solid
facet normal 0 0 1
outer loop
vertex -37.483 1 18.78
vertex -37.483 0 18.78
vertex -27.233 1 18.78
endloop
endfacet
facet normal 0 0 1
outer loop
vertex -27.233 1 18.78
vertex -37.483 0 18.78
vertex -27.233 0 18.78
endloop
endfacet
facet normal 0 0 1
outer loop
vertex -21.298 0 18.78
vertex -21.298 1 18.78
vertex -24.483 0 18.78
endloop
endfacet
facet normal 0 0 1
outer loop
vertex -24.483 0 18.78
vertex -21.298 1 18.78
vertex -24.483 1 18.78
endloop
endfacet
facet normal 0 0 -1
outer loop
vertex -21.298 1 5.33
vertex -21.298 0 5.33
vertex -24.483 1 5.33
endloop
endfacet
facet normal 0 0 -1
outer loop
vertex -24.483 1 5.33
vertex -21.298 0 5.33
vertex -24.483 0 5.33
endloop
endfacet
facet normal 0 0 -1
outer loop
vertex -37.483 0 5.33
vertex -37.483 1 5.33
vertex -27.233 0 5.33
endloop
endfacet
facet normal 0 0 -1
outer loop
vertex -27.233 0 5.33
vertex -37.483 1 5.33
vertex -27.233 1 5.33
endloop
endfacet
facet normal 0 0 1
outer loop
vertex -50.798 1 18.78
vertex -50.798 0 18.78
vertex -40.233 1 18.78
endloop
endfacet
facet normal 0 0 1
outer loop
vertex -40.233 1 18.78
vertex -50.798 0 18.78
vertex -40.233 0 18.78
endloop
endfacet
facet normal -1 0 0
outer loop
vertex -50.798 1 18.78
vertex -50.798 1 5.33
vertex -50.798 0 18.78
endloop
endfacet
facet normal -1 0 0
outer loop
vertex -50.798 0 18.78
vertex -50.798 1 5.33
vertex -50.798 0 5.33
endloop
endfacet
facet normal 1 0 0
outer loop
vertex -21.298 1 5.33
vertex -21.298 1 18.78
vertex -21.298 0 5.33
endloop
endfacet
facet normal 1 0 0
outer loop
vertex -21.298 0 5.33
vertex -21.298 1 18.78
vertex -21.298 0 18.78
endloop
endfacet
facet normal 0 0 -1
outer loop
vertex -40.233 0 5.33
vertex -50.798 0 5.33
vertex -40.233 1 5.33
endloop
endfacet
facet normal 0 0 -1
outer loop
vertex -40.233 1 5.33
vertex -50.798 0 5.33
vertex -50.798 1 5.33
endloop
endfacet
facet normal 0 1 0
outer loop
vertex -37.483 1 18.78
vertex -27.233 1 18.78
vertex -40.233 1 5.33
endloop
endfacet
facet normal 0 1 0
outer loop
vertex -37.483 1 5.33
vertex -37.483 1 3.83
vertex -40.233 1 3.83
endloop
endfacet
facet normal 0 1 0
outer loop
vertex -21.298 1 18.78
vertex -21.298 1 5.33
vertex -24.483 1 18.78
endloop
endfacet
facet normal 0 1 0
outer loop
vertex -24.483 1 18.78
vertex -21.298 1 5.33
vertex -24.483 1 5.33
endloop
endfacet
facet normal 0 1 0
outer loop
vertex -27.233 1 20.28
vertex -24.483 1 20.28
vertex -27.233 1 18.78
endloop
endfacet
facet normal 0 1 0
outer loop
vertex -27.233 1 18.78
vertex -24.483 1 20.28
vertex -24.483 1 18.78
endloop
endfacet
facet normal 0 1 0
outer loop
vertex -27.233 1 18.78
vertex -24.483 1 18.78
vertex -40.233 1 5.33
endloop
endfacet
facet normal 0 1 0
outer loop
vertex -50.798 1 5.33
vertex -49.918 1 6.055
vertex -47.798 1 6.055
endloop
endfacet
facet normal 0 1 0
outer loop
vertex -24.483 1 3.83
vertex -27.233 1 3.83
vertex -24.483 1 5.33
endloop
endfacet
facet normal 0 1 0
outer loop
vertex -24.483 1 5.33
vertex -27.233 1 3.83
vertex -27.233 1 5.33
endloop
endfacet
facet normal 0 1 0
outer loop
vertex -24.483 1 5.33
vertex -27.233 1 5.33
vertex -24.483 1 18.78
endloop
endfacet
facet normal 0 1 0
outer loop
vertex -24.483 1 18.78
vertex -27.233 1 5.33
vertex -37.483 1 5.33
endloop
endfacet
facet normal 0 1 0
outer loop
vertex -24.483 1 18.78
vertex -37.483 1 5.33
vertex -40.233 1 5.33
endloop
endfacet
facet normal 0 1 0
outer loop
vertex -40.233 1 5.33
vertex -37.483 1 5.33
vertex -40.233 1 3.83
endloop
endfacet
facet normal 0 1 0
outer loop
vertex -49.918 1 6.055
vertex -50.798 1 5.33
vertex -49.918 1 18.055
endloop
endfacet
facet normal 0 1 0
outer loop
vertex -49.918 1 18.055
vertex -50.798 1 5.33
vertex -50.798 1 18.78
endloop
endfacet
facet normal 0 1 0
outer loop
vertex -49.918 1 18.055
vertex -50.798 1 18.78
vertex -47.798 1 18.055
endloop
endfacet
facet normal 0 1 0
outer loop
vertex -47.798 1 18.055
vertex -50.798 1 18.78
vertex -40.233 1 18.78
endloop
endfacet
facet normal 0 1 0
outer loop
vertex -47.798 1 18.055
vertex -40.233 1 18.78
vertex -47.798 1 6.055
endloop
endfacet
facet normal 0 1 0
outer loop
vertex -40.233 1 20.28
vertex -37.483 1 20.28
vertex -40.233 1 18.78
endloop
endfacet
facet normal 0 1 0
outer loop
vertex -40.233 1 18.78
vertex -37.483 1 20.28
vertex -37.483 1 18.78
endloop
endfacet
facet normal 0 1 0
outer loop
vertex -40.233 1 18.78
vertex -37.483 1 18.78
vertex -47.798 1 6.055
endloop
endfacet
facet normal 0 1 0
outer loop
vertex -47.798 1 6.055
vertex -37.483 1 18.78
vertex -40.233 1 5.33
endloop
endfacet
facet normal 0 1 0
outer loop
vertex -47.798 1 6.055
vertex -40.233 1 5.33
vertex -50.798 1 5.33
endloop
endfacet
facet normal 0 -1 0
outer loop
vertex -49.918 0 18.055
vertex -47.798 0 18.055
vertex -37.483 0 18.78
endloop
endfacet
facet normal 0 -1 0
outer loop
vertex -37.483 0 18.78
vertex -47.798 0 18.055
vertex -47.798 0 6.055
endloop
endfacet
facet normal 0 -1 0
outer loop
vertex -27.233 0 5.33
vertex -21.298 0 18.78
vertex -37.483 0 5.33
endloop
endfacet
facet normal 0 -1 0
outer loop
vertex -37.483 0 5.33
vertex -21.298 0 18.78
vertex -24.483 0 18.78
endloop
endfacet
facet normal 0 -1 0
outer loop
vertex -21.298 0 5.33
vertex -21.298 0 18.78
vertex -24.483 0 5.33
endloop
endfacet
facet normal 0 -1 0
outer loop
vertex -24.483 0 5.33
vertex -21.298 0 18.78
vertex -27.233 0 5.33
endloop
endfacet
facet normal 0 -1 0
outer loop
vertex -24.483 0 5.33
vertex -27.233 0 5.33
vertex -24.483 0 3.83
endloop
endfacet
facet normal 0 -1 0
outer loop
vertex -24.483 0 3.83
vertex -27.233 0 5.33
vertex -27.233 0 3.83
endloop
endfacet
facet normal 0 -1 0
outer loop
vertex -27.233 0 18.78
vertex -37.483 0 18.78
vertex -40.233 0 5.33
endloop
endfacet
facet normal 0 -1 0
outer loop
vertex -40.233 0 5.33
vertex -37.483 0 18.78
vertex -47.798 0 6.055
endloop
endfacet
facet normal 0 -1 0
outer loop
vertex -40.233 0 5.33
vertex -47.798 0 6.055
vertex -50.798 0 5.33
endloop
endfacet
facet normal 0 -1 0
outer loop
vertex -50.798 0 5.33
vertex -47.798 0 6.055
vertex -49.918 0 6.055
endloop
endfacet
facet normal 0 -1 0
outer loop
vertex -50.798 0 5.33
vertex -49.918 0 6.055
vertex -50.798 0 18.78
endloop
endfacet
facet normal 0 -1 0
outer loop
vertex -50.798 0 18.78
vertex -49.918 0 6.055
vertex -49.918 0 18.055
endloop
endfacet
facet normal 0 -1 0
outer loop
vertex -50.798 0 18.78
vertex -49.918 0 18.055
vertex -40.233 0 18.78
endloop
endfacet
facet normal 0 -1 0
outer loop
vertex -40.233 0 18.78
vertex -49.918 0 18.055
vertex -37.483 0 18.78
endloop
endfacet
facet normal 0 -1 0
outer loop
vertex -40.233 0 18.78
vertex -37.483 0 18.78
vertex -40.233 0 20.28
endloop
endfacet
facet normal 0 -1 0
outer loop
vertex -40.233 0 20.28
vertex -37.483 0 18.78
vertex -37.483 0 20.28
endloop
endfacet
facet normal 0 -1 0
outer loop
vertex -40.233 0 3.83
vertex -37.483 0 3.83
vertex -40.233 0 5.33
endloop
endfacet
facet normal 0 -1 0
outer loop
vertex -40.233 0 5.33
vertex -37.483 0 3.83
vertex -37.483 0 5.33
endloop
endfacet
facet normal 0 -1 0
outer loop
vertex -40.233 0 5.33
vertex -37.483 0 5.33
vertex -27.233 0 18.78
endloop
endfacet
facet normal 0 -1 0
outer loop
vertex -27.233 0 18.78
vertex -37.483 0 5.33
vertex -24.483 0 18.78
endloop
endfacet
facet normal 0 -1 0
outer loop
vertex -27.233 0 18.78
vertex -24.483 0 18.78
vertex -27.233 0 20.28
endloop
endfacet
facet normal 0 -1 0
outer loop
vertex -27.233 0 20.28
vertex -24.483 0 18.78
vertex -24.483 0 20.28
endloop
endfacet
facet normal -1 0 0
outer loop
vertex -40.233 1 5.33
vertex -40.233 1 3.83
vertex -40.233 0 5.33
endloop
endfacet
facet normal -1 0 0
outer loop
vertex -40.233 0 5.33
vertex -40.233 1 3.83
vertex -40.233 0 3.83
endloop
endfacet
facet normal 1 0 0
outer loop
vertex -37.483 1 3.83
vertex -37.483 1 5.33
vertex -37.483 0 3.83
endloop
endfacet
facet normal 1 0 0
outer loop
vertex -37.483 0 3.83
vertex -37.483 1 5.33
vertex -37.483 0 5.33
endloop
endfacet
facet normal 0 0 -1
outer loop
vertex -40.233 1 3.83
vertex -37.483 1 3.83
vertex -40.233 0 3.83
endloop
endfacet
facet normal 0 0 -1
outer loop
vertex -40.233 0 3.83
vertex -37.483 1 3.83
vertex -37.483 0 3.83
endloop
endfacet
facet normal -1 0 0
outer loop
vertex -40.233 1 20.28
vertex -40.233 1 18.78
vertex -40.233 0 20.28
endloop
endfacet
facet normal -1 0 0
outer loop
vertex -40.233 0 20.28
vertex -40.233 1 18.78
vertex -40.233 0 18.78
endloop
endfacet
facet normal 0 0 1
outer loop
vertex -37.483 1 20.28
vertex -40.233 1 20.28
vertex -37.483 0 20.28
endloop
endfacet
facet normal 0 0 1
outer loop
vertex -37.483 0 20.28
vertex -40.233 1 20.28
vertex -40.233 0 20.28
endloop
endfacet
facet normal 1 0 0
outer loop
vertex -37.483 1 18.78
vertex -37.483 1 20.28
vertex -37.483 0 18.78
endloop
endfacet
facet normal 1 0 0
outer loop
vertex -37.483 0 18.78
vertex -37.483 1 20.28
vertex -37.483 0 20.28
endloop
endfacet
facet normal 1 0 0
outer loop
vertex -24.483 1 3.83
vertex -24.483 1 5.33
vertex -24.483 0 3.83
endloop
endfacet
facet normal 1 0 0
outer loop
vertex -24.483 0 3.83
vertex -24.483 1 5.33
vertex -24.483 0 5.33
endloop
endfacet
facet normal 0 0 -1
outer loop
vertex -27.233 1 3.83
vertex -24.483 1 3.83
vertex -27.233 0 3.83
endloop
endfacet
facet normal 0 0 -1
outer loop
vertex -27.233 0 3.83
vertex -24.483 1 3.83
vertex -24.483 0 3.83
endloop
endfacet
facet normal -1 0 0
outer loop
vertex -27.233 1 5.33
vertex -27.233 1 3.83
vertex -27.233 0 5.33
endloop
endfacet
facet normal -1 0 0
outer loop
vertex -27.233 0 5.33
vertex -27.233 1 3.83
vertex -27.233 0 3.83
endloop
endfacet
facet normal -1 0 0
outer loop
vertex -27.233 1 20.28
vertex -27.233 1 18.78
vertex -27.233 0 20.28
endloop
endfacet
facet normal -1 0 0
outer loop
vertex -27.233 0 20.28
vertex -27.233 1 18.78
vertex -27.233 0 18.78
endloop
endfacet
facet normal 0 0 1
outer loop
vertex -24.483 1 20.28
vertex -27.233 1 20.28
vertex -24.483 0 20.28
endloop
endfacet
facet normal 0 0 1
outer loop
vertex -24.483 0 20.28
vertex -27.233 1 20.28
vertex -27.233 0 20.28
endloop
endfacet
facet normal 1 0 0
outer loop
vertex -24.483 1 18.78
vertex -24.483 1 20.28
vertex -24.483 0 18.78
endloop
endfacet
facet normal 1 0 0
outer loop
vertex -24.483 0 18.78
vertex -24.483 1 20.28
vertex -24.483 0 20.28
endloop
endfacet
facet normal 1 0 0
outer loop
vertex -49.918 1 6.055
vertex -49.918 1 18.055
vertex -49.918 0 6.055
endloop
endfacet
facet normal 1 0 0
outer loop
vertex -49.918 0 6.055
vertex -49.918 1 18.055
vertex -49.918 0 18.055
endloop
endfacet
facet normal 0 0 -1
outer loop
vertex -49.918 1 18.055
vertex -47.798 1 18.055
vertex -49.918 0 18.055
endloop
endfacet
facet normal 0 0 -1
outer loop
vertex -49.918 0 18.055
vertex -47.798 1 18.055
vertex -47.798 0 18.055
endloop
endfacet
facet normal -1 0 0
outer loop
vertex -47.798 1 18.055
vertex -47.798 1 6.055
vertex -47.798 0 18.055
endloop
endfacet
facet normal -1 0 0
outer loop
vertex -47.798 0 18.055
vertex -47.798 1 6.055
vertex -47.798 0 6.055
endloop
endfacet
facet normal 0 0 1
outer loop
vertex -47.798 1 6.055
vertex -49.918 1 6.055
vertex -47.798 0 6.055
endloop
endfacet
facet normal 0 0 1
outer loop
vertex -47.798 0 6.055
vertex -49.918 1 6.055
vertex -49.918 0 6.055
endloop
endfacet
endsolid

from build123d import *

# Parameters (mm, degrees)
SKETCH1_W              = 29.5
SKETCH1_H              = 13.45
BOSS_EXTRUDE1_DEPTH    = 1
SKETCH2_W              = 2.75
SKETCH2_H              = 1.5
BOSS_EXTRUDE2_DEPTH    = 1
SKETCH3_W              = 2.12
SKETCH3_H              = 12
ADAPTER_PCB_HOLE_DEPTH = 1


with BuildPart() as part:
    # Sketch1 → Boss-Extrude1 (new body)
    with BuildSketch(Plane(origin=(0, 0, 0), x_dir=(1, 0, 0), z_dir=(0, 1, 0))):
        with Locations((-36.048423651, -12.055454233)):
            Rectangle(SKETCH1_W, SKETCH1_H)
    extrude(amount=BOSS_EXTRUDE1_DEPTH)

    # Sketch2 → Boss-Extrude2 (add)
    with BuildSketch(Plane(origin=(0, 0, 0), x_dir=(1, 0, 0), z_dir=(0, 1, 0))):
        with Locations((-38.858423651, -4.580454233)):
            Rectangle(SKETCH2_W, SKETCH2_H)
        with Locations((-38.858423651, -19.530454233)):
            Rectangle(SKETCH2_W, SKETCH2_H)
        with Locations((-25.858423651, -4.580454233)):
            Rectangle(SKETCH2_W, SKETCH2_H)
        with Locations((-25.858423651, -19.530454233)):
            Rectangle(SKETCH2_W, SKETCH2_H)
    extrude(amount=BOSS_EXTRUDE2_DEPTH)

    # Sketch3 → adapter_PCB_hole (cut)
    with BuildSketch(Plane(origin=(0, 0, 0), x_dir=(-1, 0, 0), z_dir=(0, -1, 0))):
        with Locations((48.858423651, -12.055454233)):
            Rectangle(SKETCH3_W, SKETCH3_H)
    extrude(amount=-ADAPTER_PCB_HOLE_DEPTH, mode=Mode.SUBTRACT)


solid = part.part
